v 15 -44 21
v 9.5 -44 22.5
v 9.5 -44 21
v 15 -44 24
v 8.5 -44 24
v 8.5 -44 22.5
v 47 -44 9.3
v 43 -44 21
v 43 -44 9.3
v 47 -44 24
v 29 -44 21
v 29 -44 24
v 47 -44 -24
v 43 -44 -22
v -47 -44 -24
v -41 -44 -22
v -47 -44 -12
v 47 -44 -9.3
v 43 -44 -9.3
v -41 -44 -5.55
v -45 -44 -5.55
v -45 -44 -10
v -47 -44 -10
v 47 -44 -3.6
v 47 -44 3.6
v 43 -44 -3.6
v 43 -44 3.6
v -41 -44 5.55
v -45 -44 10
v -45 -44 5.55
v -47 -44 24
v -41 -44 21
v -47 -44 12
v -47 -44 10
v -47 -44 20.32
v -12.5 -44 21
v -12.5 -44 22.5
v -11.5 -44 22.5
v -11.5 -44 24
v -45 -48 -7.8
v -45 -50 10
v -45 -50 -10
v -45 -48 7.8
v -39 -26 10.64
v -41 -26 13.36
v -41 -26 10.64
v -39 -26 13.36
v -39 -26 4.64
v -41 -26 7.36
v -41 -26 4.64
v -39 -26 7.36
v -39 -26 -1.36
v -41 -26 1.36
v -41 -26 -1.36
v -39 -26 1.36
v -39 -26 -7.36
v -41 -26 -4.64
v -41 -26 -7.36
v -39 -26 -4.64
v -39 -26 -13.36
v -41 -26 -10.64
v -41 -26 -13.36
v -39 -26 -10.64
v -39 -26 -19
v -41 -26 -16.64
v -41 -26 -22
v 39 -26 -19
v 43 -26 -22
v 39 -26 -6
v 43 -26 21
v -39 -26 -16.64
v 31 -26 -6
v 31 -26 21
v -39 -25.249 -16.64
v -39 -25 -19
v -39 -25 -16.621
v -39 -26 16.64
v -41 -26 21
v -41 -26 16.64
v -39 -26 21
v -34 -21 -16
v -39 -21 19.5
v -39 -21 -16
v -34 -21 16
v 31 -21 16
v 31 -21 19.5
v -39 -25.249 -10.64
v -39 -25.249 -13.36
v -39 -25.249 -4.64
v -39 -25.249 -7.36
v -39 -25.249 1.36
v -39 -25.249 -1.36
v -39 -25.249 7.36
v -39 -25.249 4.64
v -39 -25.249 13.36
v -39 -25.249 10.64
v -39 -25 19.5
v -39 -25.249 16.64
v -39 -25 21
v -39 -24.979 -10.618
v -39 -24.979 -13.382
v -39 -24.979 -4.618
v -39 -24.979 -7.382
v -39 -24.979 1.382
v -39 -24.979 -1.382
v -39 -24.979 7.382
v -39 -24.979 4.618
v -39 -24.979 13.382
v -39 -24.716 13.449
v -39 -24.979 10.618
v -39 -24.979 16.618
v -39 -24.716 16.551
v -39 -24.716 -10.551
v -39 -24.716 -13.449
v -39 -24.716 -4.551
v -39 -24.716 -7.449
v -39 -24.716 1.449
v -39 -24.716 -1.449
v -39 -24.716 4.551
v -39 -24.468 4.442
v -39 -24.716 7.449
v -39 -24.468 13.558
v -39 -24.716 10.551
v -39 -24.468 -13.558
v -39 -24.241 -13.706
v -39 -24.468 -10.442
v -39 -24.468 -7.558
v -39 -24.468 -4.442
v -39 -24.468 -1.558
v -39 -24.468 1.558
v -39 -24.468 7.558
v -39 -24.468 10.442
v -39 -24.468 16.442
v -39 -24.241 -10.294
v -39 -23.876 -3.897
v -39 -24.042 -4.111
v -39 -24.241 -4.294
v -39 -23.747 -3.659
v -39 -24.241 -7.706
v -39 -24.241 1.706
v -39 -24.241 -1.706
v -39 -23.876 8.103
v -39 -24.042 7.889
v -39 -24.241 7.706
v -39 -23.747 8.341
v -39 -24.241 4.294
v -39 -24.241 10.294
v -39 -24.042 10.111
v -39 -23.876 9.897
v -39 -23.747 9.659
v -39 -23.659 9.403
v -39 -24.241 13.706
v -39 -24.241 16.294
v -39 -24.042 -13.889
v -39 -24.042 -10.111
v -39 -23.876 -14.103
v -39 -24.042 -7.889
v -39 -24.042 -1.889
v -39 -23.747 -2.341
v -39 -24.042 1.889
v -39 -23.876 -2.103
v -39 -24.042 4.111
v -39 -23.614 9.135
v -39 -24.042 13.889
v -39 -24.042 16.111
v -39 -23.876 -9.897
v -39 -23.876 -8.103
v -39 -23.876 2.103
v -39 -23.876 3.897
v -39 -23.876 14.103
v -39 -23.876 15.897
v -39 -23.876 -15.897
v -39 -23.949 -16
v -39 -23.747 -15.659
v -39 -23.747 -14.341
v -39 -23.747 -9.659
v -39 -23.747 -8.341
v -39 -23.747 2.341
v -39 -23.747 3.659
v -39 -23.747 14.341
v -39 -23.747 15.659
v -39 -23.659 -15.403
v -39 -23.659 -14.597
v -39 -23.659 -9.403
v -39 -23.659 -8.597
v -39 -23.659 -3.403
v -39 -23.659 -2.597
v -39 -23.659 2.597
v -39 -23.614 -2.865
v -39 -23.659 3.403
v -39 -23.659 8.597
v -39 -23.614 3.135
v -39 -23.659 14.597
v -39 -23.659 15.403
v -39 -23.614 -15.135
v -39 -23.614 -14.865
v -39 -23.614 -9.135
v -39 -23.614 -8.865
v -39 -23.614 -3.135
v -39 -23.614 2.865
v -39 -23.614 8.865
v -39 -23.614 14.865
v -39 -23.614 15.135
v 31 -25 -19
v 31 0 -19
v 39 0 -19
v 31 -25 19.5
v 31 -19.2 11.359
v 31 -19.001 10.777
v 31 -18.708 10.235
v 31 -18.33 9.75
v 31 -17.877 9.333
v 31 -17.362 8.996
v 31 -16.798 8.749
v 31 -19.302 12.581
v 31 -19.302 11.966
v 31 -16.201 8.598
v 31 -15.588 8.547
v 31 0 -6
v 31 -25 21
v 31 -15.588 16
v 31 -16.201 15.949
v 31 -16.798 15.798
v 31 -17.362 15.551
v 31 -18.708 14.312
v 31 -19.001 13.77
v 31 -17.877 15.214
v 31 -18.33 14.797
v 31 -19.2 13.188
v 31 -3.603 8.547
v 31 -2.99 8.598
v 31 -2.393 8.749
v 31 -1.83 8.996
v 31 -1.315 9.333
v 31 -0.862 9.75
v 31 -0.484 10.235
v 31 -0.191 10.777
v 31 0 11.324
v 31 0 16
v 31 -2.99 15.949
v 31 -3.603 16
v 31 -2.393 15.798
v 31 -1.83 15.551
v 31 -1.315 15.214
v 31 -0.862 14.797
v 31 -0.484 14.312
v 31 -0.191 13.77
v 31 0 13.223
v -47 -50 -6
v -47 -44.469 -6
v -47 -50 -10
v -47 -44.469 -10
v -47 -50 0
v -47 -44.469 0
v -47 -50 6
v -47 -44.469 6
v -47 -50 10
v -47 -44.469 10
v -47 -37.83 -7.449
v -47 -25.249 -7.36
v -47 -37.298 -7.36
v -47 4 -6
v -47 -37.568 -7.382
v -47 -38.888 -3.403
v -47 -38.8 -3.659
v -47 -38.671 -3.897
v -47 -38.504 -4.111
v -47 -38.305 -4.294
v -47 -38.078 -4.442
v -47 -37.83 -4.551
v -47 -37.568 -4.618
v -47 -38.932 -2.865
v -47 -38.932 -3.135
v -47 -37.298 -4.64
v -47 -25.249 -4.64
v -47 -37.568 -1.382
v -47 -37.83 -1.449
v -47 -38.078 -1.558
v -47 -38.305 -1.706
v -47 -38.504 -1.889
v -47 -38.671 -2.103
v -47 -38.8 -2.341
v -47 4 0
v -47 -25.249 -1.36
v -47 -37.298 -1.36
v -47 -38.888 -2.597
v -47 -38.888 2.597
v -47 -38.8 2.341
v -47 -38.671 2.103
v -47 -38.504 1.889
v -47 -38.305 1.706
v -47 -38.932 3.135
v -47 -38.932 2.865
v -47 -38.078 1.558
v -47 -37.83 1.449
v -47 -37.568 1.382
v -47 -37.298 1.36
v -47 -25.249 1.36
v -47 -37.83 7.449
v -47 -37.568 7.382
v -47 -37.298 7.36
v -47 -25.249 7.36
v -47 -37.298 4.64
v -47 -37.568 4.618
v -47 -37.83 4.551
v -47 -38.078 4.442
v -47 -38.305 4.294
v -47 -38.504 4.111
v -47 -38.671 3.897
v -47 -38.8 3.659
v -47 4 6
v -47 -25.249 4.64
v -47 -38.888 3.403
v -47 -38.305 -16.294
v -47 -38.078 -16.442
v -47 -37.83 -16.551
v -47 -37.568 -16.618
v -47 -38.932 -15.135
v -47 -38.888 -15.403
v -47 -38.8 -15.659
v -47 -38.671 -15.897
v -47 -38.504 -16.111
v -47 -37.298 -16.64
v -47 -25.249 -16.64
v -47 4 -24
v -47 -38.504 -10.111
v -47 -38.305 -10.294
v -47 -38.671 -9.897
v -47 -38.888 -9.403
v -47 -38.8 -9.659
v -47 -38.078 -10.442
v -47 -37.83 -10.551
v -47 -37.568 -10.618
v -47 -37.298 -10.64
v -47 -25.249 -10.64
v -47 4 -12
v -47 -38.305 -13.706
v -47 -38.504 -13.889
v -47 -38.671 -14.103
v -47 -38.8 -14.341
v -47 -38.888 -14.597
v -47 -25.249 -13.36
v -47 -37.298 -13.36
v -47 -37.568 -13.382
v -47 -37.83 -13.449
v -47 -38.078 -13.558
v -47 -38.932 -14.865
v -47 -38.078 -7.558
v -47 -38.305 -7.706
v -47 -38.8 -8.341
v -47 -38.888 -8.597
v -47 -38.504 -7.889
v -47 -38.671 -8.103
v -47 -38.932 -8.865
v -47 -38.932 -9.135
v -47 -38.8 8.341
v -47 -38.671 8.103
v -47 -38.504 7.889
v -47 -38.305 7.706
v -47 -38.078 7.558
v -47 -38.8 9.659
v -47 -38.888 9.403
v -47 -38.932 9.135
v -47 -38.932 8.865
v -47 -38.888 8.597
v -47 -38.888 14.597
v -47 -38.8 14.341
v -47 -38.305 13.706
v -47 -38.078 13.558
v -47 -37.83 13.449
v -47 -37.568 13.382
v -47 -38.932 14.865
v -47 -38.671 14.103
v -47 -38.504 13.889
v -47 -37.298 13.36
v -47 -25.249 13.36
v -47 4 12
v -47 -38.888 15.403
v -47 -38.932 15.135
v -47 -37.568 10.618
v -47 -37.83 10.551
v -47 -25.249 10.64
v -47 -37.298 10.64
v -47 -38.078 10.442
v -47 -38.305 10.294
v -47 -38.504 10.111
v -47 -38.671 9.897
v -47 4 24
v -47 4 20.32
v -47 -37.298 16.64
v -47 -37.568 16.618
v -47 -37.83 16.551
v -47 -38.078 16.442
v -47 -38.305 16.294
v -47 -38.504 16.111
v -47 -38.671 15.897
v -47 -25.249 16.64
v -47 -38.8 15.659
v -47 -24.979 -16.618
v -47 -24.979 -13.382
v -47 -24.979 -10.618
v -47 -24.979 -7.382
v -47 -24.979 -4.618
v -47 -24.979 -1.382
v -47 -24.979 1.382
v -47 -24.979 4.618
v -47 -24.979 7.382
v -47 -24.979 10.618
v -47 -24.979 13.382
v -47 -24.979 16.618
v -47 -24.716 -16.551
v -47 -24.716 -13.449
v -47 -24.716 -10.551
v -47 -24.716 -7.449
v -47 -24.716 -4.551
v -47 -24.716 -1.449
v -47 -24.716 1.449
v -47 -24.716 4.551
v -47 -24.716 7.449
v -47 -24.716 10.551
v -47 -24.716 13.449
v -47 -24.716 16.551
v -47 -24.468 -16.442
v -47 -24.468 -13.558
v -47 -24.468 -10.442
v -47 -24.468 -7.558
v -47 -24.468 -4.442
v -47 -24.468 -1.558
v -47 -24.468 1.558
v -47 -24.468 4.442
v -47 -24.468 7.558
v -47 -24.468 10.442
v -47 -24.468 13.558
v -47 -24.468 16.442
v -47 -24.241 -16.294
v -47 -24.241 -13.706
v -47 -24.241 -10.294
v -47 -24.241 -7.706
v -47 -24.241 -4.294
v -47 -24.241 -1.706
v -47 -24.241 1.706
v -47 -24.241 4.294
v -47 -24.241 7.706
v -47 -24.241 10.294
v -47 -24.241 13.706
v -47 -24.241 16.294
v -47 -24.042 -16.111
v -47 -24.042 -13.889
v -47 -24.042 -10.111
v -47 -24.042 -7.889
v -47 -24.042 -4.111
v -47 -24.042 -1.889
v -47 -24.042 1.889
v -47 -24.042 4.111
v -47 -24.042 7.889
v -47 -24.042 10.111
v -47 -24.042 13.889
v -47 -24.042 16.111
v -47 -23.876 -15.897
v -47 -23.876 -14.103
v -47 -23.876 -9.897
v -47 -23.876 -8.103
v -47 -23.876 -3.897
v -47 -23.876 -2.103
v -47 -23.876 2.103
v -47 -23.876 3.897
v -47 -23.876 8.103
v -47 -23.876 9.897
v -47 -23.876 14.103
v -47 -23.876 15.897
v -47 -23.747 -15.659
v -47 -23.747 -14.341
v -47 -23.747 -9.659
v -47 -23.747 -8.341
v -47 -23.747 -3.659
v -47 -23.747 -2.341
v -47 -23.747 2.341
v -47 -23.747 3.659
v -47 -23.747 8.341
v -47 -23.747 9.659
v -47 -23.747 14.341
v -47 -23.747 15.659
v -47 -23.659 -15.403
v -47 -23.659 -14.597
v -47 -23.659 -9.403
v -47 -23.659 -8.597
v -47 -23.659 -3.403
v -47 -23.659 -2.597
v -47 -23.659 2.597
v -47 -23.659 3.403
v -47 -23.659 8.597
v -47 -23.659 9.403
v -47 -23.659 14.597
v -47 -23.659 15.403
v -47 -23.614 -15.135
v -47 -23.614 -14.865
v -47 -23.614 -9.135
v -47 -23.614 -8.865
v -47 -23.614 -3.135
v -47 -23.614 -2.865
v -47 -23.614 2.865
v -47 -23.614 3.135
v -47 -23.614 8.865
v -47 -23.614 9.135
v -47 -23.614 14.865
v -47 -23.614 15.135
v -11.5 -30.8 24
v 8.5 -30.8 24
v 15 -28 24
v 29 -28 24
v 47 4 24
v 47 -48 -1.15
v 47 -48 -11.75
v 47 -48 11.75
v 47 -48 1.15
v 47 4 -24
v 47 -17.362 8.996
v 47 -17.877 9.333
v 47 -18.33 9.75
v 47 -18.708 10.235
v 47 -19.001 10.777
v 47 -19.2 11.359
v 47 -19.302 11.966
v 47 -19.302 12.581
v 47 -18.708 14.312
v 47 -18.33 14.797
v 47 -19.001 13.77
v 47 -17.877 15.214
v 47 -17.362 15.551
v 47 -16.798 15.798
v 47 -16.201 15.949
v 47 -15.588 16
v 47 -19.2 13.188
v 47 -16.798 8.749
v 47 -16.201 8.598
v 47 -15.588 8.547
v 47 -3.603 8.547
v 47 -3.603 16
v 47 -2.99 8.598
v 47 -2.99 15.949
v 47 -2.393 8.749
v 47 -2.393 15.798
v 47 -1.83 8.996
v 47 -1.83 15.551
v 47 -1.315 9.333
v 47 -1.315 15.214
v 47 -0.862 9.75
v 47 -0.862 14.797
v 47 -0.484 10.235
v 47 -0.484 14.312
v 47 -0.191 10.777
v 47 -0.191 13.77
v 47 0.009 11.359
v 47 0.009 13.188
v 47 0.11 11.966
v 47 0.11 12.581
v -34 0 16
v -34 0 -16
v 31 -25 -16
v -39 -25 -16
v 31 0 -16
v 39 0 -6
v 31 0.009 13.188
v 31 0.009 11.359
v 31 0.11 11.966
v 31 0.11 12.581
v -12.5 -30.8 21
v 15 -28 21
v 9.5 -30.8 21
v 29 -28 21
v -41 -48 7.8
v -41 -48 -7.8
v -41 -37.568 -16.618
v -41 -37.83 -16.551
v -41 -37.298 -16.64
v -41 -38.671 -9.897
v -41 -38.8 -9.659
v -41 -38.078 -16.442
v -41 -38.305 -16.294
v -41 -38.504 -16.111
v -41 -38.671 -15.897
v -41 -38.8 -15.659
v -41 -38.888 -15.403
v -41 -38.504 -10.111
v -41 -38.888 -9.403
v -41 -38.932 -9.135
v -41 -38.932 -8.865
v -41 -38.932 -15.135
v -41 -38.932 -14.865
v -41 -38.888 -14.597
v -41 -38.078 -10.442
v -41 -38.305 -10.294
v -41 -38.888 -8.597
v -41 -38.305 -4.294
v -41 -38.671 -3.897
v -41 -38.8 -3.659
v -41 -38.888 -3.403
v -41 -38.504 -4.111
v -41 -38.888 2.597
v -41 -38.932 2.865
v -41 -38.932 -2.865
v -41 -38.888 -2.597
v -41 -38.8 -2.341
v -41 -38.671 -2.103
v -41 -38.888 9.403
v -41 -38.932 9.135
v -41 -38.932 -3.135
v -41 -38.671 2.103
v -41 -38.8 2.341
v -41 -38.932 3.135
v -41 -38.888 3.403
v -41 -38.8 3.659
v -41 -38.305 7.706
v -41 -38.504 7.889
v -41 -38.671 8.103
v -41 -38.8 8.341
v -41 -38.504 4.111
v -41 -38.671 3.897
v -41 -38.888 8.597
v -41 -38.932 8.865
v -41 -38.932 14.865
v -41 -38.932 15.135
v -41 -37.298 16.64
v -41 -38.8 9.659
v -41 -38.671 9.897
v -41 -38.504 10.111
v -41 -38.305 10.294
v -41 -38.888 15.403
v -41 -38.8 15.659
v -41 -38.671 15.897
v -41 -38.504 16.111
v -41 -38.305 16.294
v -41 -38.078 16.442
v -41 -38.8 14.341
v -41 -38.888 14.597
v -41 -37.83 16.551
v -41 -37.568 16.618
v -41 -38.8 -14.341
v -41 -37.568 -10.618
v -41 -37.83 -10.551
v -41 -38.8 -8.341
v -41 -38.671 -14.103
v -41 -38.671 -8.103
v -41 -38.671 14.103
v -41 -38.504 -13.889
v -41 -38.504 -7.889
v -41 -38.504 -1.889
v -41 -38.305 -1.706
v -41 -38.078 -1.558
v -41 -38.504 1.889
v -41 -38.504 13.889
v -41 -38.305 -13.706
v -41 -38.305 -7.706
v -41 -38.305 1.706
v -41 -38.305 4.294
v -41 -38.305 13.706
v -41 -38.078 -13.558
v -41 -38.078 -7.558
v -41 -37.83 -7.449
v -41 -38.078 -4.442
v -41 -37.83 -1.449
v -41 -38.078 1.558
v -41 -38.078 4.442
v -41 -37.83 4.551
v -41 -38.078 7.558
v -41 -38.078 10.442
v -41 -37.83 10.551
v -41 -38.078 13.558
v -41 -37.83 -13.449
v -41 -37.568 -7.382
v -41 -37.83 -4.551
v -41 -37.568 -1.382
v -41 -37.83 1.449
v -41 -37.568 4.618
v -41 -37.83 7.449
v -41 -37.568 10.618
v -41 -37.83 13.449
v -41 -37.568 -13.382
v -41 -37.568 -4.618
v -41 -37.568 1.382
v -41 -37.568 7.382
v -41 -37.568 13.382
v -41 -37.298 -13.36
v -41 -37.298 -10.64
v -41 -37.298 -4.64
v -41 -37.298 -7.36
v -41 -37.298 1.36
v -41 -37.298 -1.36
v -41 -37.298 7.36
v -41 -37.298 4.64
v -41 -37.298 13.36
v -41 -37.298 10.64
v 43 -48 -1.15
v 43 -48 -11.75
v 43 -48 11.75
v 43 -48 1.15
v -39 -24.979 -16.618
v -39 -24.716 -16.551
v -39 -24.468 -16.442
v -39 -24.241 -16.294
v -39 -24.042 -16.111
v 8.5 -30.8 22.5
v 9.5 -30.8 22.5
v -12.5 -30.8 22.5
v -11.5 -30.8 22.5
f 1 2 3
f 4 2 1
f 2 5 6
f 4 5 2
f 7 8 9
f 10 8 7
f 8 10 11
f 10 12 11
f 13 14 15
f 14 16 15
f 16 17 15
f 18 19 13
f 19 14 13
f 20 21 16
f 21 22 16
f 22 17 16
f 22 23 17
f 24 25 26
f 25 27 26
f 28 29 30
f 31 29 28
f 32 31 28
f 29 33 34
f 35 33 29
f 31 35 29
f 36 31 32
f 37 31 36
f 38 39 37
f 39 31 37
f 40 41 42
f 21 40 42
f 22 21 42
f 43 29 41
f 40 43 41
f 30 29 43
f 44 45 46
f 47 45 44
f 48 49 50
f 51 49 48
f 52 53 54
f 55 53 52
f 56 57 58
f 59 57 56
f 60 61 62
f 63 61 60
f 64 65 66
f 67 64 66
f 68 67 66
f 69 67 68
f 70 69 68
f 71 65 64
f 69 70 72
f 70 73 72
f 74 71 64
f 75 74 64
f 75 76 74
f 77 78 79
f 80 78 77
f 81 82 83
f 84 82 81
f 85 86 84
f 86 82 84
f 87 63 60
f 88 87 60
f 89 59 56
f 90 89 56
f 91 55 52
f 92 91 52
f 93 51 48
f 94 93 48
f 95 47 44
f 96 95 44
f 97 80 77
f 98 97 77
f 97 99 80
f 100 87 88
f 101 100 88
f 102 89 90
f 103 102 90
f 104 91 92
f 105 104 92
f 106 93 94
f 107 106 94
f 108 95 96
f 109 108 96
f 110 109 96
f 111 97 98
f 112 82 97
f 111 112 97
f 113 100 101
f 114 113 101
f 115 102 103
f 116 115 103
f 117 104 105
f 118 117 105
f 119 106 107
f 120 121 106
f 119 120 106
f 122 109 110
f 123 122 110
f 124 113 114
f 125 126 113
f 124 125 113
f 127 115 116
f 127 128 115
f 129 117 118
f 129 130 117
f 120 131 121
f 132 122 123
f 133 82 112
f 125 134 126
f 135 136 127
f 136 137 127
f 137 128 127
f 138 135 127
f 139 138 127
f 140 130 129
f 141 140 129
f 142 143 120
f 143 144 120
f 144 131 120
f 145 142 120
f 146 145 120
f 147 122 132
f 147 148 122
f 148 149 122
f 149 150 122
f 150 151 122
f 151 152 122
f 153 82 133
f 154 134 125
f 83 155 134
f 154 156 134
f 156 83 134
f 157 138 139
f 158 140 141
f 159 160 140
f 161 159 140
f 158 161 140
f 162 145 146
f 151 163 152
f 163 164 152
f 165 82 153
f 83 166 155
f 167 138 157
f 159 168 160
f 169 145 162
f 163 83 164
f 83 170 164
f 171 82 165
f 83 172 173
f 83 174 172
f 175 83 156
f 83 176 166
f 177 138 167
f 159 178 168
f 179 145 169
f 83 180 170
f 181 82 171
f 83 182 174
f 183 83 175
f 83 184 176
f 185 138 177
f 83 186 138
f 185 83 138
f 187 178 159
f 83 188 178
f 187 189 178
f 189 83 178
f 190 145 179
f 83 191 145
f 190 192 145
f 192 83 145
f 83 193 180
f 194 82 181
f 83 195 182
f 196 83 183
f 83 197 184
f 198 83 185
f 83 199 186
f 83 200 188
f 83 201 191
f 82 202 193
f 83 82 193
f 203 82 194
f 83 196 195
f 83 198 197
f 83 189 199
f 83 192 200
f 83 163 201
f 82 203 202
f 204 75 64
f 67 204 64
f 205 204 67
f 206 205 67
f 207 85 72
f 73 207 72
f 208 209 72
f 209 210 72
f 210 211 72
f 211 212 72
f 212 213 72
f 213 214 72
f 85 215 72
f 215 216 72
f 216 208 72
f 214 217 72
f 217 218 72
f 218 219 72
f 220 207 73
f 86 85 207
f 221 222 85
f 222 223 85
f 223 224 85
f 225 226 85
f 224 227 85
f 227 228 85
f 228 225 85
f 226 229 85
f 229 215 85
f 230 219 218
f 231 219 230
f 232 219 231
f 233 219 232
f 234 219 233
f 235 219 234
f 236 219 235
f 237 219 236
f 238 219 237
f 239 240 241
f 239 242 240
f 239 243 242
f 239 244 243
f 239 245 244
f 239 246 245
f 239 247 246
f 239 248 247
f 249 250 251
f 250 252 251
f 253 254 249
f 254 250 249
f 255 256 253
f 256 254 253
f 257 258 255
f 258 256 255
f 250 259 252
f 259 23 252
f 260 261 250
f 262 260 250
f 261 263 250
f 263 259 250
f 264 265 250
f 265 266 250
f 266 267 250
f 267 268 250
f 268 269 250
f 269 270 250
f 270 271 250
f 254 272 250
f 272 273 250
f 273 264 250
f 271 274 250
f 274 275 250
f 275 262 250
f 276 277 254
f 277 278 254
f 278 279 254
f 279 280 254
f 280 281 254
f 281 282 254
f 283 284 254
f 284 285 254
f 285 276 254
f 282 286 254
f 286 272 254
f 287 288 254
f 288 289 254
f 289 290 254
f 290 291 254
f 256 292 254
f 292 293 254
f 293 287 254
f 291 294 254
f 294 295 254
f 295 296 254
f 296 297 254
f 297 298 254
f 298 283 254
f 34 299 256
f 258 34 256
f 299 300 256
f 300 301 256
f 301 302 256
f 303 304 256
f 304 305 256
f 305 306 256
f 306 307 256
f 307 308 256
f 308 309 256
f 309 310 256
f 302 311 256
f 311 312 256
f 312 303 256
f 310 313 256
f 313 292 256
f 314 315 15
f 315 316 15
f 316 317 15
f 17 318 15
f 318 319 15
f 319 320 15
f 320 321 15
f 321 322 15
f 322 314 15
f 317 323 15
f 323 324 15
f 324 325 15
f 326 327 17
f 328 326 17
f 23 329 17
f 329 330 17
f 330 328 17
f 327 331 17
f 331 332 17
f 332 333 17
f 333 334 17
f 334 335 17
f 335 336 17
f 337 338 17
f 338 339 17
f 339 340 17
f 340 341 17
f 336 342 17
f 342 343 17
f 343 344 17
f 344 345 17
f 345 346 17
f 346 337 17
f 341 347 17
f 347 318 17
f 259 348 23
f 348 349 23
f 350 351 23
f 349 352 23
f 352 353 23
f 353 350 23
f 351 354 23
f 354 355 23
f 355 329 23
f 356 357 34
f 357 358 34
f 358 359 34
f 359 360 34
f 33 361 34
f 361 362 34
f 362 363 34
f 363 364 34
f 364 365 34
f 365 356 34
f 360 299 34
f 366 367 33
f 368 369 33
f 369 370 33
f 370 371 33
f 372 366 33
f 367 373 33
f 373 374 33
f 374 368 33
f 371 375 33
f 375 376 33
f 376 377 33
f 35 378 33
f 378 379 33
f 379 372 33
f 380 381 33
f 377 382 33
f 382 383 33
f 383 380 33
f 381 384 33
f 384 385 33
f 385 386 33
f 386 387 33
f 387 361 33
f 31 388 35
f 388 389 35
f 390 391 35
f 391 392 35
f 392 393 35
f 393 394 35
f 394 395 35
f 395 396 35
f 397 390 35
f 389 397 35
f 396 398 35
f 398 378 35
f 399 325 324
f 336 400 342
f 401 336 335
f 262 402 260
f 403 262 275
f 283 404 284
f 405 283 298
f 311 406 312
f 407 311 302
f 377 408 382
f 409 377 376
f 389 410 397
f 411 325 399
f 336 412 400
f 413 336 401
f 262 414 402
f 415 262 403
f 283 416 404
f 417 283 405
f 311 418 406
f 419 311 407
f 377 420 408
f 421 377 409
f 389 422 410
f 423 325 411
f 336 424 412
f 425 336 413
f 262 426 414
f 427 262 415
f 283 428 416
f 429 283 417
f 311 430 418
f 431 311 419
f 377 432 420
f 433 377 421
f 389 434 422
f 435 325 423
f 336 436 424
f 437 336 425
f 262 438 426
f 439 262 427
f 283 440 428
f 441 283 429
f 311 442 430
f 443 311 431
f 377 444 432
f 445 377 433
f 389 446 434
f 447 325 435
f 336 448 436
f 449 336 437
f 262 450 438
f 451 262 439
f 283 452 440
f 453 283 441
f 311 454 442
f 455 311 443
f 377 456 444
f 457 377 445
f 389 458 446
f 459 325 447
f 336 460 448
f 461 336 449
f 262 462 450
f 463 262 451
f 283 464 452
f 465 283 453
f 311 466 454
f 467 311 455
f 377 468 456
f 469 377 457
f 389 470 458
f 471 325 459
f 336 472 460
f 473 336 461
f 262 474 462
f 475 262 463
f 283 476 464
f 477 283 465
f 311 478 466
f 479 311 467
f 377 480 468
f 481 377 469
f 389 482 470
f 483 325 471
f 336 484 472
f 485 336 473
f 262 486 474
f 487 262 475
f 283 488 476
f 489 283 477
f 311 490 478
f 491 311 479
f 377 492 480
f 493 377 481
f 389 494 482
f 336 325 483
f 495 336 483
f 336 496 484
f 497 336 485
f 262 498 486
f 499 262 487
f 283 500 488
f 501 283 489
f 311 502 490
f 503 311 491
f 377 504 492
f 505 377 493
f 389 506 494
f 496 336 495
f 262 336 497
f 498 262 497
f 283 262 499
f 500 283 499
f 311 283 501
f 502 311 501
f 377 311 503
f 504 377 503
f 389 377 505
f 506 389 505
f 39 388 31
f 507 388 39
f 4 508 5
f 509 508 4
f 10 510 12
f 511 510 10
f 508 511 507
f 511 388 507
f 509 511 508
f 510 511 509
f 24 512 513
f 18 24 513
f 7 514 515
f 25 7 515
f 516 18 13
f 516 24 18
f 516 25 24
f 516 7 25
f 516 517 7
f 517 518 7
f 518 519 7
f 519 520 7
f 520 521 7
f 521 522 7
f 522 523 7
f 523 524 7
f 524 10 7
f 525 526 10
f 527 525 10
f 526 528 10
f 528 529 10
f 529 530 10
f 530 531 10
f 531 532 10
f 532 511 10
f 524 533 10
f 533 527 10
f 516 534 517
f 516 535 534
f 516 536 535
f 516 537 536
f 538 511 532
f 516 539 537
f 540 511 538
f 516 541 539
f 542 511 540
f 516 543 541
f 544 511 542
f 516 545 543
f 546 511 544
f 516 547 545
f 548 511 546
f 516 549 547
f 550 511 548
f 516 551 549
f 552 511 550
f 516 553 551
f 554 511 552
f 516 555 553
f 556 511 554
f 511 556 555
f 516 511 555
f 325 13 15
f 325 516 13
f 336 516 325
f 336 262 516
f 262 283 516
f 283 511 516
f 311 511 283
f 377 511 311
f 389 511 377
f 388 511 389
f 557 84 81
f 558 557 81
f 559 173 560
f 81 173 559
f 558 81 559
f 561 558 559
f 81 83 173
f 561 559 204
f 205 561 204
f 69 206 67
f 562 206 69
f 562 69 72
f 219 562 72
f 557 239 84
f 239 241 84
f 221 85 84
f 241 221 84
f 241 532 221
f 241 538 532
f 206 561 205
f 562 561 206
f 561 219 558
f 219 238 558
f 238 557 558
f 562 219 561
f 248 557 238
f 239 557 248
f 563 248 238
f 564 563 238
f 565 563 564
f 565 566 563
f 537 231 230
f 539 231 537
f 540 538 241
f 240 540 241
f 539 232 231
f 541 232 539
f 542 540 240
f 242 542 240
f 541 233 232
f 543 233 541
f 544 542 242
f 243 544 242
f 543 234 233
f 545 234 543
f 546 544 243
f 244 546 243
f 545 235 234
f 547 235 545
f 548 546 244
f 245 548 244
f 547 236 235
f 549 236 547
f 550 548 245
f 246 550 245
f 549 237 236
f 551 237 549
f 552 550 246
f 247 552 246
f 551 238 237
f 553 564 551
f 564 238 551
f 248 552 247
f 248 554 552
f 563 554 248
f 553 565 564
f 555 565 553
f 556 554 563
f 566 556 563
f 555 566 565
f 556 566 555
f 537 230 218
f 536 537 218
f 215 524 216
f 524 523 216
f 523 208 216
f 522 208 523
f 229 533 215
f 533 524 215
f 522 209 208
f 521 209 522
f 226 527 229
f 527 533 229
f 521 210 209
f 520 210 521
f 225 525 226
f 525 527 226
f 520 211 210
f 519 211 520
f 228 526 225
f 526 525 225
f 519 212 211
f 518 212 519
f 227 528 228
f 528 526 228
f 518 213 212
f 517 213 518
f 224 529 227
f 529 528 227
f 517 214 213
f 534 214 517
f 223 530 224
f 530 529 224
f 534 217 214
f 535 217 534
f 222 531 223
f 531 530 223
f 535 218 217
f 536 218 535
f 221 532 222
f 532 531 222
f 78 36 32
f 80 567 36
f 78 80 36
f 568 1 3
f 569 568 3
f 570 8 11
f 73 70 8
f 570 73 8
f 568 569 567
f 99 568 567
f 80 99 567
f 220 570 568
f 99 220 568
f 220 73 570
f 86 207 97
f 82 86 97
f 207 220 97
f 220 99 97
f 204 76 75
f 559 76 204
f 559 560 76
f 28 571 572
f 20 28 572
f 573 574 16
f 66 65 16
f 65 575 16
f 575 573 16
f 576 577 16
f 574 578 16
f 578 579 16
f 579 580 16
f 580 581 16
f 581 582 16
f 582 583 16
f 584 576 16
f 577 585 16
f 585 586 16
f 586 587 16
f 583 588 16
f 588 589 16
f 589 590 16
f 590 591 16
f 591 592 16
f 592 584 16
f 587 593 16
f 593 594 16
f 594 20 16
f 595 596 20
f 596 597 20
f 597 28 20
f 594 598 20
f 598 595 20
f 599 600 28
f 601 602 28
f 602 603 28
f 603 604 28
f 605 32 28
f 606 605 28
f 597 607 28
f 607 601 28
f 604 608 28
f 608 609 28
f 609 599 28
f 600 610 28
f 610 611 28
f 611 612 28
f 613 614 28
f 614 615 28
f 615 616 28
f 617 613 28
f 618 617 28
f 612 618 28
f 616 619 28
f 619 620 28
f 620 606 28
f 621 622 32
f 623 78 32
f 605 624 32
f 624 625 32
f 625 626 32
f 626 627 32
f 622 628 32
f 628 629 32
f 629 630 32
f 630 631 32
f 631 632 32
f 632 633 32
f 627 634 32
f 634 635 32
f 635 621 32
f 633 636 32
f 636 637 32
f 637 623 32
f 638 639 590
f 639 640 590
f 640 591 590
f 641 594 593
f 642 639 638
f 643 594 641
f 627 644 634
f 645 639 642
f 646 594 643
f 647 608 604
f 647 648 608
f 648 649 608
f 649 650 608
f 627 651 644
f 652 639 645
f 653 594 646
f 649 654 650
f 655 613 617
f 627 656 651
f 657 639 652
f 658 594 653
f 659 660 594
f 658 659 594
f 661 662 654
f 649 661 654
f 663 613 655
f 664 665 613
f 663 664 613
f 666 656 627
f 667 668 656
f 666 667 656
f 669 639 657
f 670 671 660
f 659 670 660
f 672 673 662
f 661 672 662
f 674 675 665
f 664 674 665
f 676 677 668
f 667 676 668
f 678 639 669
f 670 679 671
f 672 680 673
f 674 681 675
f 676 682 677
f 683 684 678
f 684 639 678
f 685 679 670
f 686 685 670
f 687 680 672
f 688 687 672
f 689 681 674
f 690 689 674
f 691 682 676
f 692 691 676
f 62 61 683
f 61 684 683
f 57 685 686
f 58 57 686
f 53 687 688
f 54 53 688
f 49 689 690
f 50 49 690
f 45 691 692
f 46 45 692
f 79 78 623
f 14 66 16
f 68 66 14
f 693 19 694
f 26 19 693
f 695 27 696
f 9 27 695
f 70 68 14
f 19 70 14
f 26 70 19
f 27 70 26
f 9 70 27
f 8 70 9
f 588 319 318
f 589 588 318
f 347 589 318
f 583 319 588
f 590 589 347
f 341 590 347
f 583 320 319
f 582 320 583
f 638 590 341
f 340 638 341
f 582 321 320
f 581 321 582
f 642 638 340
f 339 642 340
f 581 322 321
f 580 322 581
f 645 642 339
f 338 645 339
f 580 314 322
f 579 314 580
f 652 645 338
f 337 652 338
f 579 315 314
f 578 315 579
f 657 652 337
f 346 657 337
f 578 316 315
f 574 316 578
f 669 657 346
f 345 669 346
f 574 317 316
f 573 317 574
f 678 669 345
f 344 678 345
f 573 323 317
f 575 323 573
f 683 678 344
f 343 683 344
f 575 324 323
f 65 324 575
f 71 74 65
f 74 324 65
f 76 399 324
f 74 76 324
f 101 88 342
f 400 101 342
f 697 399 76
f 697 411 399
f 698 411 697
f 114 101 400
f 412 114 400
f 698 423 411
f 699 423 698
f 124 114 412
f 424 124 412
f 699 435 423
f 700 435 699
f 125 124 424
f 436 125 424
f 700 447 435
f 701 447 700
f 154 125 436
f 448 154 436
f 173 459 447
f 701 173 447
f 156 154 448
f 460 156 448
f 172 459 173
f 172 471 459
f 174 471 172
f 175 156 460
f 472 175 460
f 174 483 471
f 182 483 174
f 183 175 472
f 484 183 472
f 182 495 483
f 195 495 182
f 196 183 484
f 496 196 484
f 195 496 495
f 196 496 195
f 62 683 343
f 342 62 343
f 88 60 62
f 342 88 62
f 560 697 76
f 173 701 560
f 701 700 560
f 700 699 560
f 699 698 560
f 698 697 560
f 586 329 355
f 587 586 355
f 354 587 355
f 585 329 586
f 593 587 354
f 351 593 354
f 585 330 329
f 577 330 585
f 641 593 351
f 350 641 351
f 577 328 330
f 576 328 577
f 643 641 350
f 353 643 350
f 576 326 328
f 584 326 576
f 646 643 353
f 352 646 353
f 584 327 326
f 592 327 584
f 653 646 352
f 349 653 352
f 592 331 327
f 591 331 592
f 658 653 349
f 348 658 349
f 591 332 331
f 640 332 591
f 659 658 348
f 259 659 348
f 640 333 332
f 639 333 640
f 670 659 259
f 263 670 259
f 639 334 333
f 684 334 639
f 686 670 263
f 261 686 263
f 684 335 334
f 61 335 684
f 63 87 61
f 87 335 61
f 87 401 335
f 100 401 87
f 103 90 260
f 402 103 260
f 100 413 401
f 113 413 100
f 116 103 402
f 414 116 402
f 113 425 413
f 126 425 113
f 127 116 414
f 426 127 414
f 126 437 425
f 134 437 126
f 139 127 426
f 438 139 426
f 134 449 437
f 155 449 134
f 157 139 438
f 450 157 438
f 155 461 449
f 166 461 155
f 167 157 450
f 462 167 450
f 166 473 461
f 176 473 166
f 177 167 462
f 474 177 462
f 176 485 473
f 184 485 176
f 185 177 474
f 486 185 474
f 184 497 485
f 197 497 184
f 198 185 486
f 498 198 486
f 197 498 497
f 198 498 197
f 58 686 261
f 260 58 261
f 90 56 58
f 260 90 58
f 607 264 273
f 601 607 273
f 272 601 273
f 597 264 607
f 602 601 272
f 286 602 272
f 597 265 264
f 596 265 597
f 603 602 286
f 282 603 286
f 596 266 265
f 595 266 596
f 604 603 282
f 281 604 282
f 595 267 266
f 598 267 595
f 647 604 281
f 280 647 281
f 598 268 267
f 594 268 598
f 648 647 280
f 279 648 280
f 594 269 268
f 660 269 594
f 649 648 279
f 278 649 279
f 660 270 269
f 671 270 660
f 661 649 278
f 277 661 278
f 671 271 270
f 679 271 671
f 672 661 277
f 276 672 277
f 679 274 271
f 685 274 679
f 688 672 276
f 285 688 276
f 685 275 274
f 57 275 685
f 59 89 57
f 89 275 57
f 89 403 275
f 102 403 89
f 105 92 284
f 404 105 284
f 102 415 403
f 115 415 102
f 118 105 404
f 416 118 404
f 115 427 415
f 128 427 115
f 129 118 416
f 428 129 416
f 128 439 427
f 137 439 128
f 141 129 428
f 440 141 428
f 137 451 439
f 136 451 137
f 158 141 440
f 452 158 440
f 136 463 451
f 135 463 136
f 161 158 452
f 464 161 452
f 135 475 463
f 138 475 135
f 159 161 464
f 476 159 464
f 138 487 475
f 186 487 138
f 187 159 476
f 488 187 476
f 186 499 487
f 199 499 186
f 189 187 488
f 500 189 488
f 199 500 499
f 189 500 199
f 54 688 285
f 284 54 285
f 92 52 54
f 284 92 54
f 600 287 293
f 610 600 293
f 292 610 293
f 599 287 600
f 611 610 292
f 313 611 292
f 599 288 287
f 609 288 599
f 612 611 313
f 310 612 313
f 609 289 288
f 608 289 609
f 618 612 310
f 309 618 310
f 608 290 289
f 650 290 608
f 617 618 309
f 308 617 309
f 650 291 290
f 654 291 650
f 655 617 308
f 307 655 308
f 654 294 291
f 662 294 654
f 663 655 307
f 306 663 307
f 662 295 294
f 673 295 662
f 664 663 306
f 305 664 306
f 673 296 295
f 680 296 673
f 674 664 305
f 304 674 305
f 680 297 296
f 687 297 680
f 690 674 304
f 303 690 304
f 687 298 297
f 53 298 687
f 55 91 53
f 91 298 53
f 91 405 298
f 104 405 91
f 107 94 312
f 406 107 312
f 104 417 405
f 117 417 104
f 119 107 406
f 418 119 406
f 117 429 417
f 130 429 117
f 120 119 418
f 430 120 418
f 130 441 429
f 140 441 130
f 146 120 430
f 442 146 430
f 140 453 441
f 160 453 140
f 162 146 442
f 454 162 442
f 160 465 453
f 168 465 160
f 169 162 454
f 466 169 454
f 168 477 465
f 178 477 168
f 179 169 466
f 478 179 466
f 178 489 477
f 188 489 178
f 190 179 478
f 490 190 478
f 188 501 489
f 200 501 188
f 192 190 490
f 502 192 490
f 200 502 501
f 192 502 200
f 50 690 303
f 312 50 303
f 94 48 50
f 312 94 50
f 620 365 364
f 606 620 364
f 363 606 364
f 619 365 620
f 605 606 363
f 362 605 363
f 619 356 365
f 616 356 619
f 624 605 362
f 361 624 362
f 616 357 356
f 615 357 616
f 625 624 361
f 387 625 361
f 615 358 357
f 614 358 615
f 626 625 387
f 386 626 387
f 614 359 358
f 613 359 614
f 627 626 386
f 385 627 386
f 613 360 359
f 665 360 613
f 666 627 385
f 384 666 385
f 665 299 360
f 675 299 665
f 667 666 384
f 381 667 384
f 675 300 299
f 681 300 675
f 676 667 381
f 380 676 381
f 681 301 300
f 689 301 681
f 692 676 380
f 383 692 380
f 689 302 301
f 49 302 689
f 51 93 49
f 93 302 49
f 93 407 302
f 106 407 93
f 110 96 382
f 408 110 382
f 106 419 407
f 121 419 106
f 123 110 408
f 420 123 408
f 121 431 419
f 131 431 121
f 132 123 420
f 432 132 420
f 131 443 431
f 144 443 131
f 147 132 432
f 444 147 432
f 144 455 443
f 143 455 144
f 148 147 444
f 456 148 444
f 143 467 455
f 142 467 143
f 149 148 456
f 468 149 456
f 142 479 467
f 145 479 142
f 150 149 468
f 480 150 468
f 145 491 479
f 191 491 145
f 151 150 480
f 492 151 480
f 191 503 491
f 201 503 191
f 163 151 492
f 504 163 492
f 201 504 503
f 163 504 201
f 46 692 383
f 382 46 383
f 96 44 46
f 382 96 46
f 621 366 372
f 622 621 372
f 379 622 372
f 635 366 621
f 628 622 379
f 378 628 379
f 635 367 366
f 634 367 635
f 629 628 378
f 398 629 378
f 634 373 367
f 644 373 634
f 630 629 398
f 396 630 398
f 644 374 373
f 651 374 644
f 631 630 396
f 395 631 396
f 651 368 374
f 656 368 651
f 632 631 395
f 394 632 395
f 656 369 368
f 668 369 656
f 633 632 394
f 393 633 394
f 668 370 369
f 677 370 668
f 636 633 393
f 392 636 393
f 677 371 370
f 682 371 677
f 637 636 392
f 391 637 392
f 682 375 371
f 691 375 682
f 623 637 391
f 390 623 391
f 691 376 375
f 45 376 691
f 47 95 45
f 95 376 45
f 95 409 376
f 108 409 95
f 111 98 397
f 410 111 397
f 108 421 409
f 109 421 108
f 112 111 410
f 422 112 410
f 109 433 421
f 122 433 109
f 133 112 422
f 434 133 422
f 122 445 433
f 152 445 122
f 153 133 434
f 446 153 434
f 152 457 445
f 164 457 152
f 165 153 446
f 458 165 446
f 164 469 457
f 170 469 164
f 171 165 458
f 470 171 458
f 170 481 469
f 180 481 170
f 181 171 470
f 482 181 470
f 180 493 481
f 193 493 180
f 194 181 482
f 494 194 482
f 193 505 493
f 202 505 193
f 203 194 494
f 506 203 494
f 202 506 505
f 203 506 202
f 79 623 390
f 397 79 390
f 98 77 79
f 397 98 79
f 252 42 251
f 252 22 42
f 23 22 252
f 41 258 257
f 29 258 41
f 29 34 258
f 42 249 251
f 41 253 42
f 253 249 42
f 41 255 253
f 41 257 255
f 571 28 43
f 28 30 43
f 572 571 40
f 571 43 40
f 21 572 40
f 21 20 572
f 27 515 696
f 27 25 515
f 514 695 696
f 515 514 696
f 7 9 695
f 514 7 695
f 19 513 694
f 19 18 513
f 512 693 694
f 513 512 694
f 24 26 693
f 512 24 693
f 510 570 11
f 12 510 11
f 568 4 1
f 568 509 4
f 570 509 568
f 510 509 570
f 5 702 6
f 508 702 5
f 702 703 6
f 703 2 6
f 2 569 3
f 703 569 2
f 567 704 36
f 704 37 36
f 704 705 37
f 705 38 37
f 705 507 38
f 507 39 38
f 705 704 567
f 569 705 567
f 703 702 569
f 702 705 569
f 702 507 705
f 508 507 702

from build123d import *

# Parameters (mm, degrees)
SKETCH1_W            = 94
SKETCH1_H            = 48
BOSS_EXTRUDE1_DEPTH  = 4
SKETCH8_W            = 94
SKETCH8_H            = 48
BOSS_EXTRUDE2_DEPTH  = 21
CUT_EXTRUDE1_DEPTH   = 16
SKETCH10_W           = 94
SKETCH10_H           = 48
BOSS_EXTRUDE3_DEPTH  = 5
SKETCH15_W           = 70
SKETCH15_H           = 1.5
SKETCH15_H_2         = 3
BOSS_EXTRUDE6_DEPTH  = 4
SKETCH16_W           = 94
SKETCH16_H           = 48
SKETCH16_W_2         = 84
SKETCH16_H_2         = 43
BOSS_EXTRUDE7_DEPTH  = 18
CUT_EXTRUDE4_DEPTH   = 8
SKETCH18_W           = 2
SKETCH18_H           = 20
BOSS_EXTRUDE8_DEPTH  = 6
BOSS_EXTRUDE9_DEPTH  = 4
BOSS_EXTRUDE10_DEPTH = 4
SKETCH22_W           = 14
SKETCH22_H           = 16
CUT_EXTRUDE6_DEPTH   = 3
CUT_EXTRUDE8_DEPTH   = 13.2


with BuildPart() as part:
    # Sketch1 → Boss-Extrude1 (new body)
    with BuildSketch(Plane(origin=(0, 0, 0), x_dir=(1, 0, 0), z_dir=(0, 1, 0))):
        Rectangle(SKETCH1_W, SKETCH1_H)
    extrude(amount=BOSS_EXTRUDE1_DEPTH)

    # Sketch8 → Boss-Extrude2 (add)
    with BuildSketch(Plane(origin=(0, 0, 0), x_dir=(-1, 0, 0), z_dir=(0, -1, 0))):
        Rectangle(SKETCH8_W, SKETCH8_H)
        Polygon((34, -16), (-31, -16), (-31, 6), (-39, 6), (-39, 19), (-31, 19), (-31, 16), (34, 16), align=None, mode=Mode.SUBTRACT)
    extrude(amount=BOSS_EXTRUDE2_DEPTH)

    # Sketch9 → Cut-Extrude1 (cut)
    with BuildSketch(Plane(origin=(47, 0, 0), x_dir=(0, 0, -1), z_dir=(1, 0, 0))):
        with BuildLine():
            Line((-8.547025015, -3.603370842), (-8.547025015, -15.588001804))
            ThreePointArc((-8.547025015, -15.588001804), (-12.273512507, -19.314489297), (-16, -15.588001804))
            Line((-16, -15.588001804), (-16, -3.603370842))
            ThreePointArc((-16, -3.603370842), (-12.273512507, 0.12311665), (-8.547025015, -3.603370842))
        make_face()
    extrude(amount=-CUT_EXTRUDE1_DEPTH, mode=Mode.SUBTRACT)

    # Sketch10 → Boss-Extrude3 (add)
    with BuildSketch(Plane.XZ.offset(21)):
        Rectangle(SKETCH10_W, SKETCH10_H)
        Polygon((31, -6), (39, -6), (39, -19), (-39, -19), (-39, 21), (31, 21), align=None, mode=Mode.SUBTRACT)
    extrude(amount=BOSS_EXTRUDE3_DEPTH)

    # Sketch15 → Boss-Extrude6 (add)
    with BuildSketch(Plane.XZ.offset(21)):
        with Locations((-4, 20.25)):
            Rectangle(SKETCH15_W, SKETCH15_H)
        with Locations((-4, -17.5)):
            Rectangle(SKETCH15_W, SKETCH15_H_2)
    extrude(amount=BOSS_EXTRUDE6_DEPTH)

    # Sketch16 → Boss-Extrude7 (add)
    with BuildSketch(Plane.XZ.offset(26)):
        Rectangle(SKETCH16_W, SKETCH16_H)
        with Locations((1, -0.5)):
            Rectangle(SKETCH16_W_2, SKETCH16_H_2, mode=Mode.SUBTRACT)
    extrude(amount=BOSS_EXTRUDE7_DEPTH)

    # Sketch17 → Cut-Extrude4 (cut)
    with BuildSketch(Plane.ZY.offset(47)):
        with BuildLine():
            Line((13.36, -37.297738986), (13.36, -25.248584525))
            ThreePointArc((13.36, -25.248584525), (15, -23.608584525), (16.64, -25.248584525))
            Line((16.64, -25.248584525), (16.64, -37.297738986))
            ThreePointArc((16.64, -37.297738986), (15, -38.937738986), (13.36, -37.297738986))
        make_face()
        with BuildLine():
            Line((10.64, -37.297738986), (10.64, -25.248584525))
            ThreePointArc((10.64, -25.248584525), (9, -23.608584525), (7.36, -25.248584525))
            Line((7.36, -25.248584525), (7.36, -37.297738986))
            ThreePointArc((7.36, -37.297738986), (9, -38.937738986), (10.64, -37.297738986))
        make_face()
        with BuildLine():
            Line((4.64, -37.297738986), (4.64, -25.248584525))
            ThreePointArc((4.64, -25.248584525), (3, -23.608584525), (1.36, -25.248584525))
            Line((1.36, -25.248584525), (1.36, -37.297738986))
            ThreePointArc((1.36, -37.297738986), (3, -38.937738986), (4.64, -37.297738986))
        make_face()
        with BuildLine():
            Line((-1.36, -37.297738986), (-1.36, -25.248584525))
            ThreePointArc((-1.36, -25.248584525), (-3, -23.608584525), (-4.64, -25.248584525))
            Line((-4.64, -25.248584525), (-4.64, -37.297738986))
            ThreePointArc((-4.64, -37.297738986), (-3, -38.937738986), (-1.36, -37.297738986))
        make_face()
        with BuildLine():
            Line((-7.36, -37.297738986), (-7.36, -25.248584525))
            ThreePointArc((-7.36, -25.248584525), (-9, -23.608584525), (-10.64, -25.248584525))
            Line((-10.64, -25.248584525), (-10.64, -37.297738986))
            ThreePointArc((-10.64, -37.297738986), (-9, -38.937738986), (-7.36, -37.297738986))
        make_face()
        with BuildLine():
            Line((-13.36, -37.297738986), (-13.36, -25.248584525))
            ThreePointArc((-13.36, -25.248584525), (-15, -23.608584525), (-16.64, -25.248584525))
            Line((-16.64, -25.248584525), (-16.64, -37.297738986))
            ThreePointArc((-16.64, -37.297738986), (-15, -38.937738986), (-13.36, -37.297738986))
        make_face()
    extrude(amount=-CUT_EXTRUDE4_DEPTH, mode=Mode.SUBTRACT)

    # Sketch18 → Boss-Extrude8 (add)
    with BuildSketch(Plane.XZ.offset(44)):
        with Locations((-46, 0)):
            Rectangle(SKETCH18_W, SKETCH18_H)
    extrude(amount=BOSS_EXTRUDE8_DEPTH)

    # Sketch19 → Boss-Extrude9 (add)
    with BuildSketch(Plane(origin=(-45, 0, 0), x_dir=(0, 0, -1), z_dir=(1, 0, 0))):
        Polygon((-5.55, -44), (5.55, -44), (7.8, -48), (-7.8, -48), align=None)
    extrude(amount=BOSS_EXTRUDE9_DEPTH)

    # Sketch20 → Boss-Extrude10 (add)
    with BuildSketch(Plane(origin=(47, 0, 0), x_dir=(0, 0, -1), z_dir=(1, 0, 0))):
        Polygon((3.6, -44), (9.3, -44), (11.75, -48), (1.15, -48), align=None)
        Polygon((-3.6, -44), (-1.15, -48), (-11.75, -48), (-9.3, -44), align=None)
    extrude(amount=-BOSS_EXTRUDE10_DEPTH)

    # Sketch22 → Cut-Extrude6 (cut)
    with BuildSketch(Plane.XY.offset(24)):
        with Locations((22, -36)):
            Rectangle(SKETCH22_W, SKETCH22_H)
    extrude(amount=-CUT_EXTRUDE6_DEPTH, mode=Mode.SUBTRACT)

    # Sketch28 → Cut-Extrude8 (cut)
    with BuildSketch(Plane(origin=(0, -44, 0), x_dir=(-1, 0, 0), z_dir=(0, -1, 0))):
        Polygon((-8.5, -24), (-8.5, -22.5), (-9.5, -22.5), (-9.5, -21), (12.5, -21), (12.5, -22.5), (11.5, -22.5), (11.5, -24), align=None)
    extrude(amount=-CUT_EXTRUDE8_DEPTH, mode=Mode.SUBTRACT)


solid = part.part
